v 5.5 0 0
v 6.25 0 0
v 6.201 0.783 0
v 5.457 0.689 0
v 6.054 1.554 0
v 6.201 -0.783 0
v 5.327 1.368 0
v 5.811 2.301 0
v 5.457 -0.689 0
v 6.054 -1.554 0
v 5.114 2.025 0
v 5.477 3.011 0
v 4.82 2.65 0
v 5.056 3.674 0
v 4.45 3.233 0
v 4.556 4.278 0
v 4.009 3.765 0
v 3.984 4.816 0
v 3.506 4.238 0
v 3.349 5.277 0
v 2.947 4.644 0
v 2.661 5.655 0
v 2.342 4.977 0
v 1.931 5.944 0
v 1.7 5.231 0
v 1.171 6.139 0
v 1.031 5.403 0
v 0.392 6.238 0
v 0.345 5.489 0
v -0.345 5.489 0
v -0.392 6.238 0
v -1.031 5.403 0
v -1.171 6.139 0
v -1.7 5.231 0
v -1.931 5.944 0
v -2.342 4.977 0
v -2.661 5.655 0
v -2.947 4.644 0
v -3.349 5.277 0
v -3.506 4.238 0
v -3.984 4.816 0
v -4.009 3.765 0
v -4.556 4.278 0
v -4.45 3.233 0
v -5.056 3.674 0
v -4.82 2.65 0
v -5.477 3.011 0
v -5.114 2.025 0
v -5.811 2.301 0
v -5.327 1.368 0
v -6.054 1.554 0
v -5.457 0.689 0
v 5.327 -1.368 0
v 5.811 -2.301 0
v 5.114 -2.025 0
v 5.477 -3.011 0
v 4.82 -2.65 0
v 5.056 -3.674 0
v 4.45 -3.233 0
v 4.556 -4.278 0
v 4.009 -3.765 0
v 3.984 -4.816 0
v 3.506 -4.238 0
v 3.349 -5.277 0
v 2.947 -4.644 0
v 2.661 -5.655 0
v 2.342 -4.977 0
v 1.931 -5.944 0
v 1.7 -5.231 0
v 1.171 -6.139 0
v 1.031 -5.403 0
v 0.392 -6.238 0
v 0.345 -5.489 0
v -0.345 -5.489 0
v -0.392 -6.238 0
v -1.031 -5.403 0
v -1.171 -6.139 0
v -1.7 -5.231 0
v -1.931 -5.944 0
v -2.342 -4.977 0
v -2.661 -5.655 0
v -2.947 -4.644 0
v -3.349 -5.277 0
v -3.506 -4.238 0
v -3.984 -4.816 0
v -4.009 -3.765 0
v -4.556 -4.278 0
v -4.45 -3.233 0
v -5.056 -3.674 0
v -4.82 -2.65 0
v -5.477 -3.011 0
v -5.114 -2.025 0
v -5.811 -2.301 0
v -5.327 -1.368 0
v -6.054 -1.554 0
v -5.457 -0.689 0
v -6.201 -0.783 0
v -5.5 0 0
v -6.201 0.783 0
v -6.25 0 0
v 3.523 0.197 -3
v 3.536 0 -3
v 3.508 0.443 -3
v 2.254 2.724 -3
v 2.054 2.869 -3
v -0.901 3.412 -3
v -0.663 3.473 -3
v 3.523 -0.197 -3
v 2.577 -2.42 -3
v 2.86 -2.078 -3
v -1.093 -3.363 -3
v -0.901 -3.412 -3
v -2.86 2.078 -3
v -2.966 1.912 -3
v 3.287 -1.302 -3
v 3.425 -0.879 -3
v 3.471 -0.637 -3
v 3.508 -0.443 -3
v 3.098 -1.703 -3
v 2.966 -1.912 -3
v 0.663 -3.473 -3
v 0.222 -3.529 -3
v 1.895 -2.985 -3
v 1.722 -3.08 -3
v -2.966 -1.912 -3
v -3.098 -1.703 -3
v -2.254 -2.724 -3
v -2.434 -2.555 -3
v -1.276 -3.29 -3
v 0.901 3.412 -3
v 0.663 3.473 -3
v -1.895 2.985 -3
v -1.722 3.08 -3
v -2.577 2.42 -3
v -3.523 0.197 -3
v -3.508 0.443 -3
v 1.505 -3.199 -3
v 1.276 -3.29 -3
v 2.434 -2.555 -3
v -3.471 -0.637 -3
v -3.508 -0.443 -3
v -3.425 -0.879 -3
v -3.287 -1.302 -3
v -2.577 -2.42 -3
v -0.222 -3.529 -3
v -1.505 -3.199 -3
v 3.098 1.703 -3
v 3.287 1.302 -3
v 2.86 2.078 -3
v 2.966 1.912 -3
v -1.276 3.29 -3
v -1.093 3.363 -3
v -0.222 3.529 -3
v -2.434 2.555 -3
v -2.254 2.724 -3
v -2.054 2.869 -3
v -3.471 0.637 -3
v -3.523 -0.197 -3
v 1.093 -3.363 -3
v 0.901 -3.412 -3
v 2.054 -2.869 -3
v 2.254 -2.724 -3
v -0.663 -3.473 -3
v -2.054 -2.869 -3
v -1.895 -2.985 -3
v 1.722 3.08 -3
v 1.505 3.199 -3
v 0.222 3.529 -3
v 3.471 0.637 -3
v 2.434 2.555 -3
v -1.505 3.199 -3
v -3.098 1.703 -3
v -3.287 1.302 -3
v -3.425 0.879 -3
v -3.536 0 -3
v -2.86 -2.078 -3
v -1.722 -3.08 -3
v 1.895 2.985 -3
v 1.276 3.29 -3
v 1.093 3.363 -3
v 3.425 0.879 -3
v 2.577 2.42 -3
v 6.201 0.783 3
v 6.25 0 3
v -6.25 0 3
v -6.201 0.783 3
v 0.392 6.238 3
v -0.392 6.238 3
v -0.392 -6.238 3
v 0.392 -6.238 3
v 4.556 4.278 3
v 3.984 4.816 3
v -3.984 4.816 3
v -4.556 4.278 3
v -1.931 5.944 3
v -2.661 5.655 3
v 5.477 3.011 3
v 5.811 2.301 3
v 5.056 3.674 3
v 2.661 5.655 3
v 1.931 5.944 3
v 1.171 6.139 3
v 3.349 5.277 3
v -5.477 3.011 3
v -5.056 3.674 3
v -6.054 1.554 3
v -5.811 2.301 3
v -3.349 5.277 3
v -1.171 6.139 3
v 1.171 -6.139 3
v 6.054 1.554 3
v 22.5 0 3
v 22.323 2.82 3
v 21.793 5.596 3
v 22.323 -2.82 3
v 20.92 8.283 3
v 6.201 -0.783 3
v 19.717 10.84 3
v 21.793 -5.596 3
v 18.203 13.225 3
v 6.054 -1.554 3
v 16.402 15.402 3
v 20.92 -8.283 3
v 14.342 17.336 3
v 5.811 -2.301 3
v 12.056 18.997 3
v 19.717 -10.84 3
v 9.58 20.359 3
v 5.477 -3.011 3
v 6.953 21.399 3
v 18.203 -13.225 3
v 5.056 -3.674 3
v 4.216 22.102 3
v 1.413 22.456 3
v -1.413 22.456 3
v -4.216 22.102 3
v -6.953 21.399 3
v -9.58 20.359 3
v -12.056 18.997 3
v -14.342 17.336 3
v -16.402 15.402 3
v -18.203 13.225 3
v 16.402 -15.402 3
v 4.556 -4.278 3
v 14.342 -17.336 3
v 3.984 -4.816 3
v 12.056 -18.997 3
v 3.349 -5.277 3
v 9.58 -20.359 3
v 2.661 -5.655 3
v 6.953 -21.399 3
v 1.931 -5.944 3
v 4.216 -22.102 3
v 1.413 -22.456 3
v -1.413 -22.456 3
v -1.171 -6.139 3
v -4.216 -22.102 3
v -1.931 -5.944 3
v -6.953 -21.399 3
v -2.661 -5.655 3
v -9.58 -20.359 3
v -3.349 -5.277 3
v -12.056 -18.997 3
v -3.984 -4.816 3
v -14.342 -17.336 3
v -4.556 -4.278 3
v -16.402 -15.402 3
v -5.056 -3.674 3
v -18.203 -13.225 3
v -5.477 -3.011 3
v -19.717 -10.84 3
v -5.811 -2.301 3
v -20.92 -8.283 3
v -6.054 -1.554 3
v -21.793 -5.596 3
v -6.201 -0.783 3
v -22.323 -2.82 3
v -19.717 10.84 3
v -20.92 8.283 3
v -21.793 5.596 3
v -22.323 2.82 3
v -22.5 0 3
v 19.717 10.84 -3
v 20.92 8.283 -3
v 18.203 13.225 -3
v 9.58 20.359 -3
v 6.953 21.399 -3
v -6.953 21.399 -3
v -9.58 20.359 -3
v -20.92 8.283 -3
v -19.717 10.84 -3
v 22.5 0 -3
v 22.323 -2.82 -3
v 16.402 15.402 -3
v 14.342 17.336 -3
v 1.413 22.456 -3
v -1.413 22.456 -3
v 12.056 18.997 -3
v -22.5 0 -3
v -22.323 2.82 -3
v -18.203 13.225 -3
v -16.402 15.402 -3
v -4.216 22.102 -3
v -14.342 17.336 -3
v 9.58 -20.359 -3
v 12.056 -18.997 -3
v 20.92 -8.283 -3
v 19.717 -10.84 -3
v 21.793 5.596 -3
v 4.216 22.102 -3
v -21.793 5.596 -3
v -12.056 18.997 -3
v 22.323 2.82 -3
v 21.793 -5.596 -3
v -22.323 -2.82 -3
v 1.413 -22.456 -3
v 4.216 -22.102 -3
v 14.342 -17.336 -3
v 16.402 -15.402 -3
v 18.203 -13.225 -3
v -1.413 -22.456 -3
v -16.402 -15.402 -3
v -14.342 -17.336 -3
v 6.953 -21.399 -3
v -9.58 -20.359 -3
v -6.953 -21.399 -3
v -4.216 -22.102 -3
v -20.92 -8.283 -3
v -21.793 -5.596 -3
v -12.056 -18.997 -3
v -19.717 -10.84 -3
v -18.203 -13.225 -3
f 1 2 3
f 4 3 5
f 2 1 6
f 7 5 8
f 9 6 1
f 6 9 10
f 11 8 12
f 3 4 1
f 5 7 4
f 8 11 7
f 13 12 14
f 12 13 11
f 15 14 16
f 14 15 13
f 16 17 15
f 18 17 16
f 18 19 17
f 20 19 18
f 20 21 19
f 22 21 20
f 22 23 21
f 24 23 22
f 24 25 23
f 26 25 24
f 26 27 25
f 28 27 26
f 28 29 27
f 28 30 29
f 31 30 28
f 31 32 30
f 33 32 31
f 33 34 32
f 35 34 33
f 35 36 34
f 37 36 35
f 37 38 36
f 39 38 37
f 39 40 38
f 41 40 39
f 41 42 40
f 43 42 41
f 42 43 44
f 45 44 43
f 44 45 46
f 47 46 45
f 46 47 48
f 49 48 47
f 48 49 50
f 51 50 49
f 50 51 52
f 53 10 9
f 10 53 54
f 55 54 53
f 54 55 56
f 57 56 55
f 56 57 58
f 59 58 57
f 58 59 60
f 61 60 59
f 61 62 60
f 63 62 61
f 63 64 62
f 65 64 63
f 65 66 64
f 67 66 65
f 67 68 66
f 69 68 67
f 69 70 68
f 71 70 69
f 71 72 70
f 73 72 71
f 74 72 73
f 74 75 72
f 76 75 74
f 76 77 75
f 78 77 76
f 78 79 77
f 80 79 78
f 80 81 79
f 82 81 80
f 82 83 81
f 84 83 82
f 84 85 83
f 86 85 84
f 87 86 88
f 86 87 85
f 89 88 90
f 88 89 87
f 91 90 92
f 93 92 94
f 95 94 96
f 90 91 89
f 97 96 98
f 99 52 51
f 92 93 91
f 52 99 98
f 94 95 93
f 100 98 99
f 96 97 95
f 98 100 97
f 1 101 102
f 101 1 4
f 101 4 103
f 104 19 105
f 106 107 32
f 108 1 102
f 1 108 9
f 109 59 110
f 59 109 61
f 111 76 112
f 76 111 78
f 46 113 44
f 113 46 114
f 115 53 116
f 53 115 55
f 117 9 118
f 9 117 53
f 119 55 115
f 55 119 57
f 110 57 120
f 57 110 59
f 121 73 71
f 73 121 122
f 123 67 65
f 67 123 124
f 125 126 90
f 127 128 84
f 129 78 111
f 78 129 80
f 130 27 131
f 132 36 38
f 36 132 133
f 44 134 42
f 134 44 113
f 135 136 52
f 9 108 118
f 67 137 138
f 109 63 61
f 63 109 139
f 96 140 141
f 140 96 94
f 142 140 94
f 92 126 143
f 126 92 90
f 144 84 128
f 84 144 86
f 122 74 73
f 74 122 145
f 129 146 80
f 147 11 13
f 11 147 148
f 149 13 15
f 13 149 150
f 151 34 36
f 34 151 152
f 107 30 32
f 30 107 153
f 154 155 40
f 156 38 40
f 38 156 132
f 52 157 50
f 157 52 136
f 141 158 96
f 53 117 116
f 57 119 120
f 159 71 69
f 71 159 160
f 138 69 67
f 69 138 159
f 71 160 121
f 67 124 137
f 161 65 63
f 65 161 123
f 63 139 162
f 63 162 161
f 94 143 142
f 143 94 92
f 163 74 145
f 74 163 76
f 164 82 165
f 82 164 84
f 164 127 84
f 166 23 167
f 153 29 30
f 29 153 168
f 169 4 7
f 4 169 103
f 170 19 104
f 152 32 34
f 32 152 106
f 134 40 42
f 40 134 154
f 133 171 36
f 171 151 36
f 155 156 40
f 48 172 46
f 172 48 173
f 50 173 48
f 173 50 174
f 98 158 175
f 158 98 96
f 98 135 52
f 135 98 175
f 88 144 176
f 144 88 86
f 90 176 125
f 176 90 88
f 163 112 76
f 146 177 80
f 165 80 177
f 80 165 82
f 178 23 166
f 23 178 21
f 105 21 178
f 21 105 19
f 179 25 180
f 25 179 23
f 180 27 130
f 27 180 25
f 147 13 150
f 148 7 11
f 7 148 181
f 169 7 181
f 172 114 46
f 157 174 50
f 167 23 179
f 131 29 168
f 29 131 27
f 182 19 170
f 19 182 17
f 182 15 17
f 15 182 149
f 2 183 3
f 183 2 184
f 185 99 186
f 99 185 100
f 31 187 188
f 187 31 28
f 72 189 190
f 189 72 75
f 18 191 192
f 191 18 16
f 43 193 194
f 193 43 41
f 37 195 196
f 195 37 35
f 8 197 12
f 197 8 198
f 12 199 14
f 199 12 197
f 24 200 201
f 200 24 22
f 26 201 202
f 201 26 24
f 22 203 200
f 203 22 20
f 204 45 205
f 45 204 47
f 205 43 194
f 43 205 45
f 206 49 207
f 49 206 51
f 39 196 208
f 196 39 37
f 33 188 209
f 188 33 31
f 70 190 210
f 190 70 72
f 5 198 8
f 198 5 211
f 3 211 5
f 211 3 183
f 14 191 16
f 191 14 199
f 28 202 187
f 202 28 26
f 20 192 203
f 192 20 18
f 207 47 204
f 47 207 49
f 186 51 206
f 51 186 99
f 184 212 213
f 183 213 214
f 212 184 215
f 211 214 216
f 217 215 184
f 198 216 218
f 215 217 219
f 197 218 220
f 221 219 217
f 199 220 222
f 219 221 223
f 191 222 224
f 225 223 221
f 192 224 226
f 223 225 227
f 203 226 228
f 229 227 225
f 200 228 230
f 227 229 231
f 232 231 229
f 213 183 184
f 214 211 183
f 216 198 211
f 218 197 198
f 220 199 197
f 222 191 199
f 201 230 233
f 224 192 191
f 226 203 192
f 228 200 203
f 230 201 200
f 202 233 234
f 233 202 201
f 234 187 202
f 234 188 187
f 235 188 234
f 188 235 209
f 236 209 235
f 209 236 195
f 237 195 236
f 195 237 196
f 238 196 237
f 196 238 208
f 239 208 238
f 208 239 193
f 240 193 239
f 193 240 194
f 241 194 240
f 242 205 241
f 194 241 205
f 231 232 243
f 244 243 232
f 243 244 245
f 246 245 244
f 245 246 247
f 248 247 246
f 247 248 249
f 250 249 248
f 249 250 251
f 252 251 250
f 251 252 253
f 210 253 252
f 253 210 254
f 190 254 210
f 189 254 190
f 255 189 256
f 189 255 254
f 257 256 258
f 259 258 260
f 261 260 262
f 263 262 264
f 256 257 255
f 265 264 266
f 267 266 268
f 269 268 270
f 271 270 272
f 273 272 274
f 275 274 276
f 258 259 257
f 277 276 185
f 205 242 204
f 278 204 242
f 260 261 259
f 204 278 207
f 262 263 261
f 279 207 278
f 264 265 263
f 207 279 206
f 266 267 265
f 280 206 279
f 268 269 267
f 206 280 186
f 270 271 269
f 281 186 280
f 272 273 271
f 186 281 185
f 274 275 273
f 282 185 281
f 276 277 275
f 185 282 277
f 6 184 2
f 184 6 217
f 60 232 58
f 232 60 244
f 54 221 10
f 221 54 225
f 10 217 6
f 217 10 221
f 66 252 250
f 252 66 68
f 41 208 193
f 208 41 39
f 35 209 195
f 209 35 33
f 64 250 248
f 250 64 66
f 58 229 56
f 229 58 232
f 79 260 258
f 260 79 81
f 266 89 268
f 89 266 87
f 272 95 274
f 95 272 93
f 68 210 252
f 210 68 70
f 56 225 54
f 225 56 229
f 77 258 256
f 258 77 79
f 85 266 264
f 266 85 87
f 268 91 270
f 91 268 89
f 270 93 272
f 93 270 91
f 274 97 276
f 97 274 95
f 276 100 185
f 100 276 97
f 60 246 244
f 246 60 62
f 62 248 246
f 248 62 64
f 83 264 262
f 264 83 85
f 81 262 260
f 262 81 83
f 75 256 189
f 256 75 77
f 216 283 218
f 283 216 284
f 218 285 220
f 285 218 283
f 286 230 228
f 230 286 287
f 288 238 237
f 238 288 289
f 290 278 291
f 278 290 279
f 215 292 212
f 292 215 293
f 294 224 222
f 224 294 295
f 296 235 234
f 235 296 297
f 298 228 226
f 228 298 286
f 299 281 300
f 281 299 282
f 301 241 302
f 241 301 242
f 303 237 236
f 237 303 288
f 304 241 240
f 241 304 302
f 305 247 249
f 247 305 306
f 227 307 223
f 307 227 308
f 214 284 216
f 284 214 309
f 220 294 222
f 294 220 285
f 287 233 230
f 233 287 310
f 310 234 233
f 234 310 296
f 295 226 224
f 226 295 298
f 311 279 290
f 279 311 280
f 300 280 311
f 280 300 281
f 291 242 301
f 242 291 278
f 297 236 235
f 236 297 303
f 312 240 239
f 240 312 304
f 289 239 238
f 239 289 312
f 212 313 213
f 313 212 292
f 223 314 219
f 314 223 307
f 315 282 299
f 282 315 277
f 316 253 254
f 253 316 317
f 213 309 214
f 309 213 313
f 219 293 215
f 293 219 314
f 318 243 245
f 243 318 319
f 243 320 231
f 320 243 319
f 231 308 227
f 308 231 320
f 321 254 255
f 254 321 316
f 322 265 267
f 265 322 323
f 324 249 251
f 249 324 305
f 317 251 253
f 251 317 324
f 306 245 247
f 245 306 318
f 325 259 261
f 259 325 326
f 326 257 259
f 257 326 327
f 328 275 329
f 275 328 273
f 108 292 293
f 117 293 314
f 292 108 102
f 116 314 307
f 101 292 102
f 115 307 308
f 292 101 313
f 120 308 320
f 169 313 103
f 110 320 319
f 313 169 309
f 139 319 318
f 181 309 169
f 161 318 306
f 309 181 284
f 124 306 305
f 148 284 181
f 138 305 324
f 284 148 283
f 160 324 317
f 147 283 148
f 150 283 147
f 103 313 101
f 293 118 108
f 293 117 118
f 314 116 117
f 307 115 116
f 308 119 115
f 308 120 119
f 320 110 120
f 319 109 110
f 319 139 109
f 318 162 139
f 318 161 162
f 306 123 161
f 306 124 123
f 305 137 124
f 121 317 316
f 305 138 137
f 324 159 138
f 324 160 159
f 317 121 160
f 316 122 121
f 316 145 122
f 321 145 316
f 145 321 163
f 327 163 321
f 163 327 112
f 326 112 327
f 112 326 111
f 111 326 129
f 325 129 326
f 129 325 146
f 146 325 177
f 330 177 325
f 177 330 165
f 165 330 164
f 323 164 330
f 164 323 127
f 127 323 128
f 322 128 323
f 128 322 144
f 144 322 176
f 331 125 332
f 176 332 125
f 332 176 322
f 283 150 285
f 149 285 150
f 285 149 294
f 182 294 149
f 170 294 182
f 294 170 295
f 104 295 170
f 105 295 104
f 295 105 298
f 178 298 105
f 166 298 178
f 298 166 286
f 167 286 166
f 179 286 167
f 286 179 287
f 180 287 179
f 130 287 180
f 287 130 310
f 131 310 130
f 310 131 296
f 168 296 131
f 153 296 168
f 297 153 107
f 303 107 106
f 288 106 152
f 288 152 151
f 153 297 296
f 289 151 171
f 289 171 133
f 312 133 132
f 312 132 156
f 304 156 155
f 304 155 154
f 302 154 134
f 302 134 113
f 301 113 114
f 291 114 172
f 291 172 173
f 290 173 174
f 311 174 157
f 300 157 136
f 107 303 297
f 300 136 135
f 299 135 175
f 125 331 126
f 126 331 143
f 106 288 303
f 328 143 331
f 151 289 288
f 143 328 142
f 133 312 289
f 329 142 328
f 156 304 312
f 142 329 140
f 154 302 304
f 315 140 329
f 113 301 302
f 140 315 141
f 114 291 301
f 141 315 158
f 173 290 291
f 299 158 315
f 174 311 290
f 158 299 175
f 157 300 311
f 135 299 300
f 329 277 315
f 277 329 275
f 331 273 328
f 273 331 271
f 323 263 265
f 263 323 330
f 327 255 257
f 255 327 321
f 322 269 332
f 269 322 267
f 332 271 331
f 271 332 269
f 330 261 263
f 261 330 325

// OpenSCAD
$fn = 50;

difference() {
	union() {
		translate(v = [0, 0, -3.0]) {
			cylinder(h = 6, r = 22.5);
		}
	}
	union() {
		translate(v = [0, 0, 0]) {
			rotate(a = [0, 0, 0]) {
				difference() {
					union() {
						translate(v = [0, 0, -6.0]) {
							cylinder(h = 6, r = 2.25);
						}
						translate(v = [0, 0, -4.2]) {
							cylinder(h = 4.2, r1 = 2.75, r2 = 5.5);
						}
						translate(v = [0, 0, -6.0]) {
							cylinder(h = 6, r = 2.75);
						}
						translate(v = [0, 0, -6.0]) {
							cylinder(h = 6, r = 2.25);
						}
					}
					union();
				}
			}
		}
		#cylinder(h = 3, r = 6.25);
	}
}
